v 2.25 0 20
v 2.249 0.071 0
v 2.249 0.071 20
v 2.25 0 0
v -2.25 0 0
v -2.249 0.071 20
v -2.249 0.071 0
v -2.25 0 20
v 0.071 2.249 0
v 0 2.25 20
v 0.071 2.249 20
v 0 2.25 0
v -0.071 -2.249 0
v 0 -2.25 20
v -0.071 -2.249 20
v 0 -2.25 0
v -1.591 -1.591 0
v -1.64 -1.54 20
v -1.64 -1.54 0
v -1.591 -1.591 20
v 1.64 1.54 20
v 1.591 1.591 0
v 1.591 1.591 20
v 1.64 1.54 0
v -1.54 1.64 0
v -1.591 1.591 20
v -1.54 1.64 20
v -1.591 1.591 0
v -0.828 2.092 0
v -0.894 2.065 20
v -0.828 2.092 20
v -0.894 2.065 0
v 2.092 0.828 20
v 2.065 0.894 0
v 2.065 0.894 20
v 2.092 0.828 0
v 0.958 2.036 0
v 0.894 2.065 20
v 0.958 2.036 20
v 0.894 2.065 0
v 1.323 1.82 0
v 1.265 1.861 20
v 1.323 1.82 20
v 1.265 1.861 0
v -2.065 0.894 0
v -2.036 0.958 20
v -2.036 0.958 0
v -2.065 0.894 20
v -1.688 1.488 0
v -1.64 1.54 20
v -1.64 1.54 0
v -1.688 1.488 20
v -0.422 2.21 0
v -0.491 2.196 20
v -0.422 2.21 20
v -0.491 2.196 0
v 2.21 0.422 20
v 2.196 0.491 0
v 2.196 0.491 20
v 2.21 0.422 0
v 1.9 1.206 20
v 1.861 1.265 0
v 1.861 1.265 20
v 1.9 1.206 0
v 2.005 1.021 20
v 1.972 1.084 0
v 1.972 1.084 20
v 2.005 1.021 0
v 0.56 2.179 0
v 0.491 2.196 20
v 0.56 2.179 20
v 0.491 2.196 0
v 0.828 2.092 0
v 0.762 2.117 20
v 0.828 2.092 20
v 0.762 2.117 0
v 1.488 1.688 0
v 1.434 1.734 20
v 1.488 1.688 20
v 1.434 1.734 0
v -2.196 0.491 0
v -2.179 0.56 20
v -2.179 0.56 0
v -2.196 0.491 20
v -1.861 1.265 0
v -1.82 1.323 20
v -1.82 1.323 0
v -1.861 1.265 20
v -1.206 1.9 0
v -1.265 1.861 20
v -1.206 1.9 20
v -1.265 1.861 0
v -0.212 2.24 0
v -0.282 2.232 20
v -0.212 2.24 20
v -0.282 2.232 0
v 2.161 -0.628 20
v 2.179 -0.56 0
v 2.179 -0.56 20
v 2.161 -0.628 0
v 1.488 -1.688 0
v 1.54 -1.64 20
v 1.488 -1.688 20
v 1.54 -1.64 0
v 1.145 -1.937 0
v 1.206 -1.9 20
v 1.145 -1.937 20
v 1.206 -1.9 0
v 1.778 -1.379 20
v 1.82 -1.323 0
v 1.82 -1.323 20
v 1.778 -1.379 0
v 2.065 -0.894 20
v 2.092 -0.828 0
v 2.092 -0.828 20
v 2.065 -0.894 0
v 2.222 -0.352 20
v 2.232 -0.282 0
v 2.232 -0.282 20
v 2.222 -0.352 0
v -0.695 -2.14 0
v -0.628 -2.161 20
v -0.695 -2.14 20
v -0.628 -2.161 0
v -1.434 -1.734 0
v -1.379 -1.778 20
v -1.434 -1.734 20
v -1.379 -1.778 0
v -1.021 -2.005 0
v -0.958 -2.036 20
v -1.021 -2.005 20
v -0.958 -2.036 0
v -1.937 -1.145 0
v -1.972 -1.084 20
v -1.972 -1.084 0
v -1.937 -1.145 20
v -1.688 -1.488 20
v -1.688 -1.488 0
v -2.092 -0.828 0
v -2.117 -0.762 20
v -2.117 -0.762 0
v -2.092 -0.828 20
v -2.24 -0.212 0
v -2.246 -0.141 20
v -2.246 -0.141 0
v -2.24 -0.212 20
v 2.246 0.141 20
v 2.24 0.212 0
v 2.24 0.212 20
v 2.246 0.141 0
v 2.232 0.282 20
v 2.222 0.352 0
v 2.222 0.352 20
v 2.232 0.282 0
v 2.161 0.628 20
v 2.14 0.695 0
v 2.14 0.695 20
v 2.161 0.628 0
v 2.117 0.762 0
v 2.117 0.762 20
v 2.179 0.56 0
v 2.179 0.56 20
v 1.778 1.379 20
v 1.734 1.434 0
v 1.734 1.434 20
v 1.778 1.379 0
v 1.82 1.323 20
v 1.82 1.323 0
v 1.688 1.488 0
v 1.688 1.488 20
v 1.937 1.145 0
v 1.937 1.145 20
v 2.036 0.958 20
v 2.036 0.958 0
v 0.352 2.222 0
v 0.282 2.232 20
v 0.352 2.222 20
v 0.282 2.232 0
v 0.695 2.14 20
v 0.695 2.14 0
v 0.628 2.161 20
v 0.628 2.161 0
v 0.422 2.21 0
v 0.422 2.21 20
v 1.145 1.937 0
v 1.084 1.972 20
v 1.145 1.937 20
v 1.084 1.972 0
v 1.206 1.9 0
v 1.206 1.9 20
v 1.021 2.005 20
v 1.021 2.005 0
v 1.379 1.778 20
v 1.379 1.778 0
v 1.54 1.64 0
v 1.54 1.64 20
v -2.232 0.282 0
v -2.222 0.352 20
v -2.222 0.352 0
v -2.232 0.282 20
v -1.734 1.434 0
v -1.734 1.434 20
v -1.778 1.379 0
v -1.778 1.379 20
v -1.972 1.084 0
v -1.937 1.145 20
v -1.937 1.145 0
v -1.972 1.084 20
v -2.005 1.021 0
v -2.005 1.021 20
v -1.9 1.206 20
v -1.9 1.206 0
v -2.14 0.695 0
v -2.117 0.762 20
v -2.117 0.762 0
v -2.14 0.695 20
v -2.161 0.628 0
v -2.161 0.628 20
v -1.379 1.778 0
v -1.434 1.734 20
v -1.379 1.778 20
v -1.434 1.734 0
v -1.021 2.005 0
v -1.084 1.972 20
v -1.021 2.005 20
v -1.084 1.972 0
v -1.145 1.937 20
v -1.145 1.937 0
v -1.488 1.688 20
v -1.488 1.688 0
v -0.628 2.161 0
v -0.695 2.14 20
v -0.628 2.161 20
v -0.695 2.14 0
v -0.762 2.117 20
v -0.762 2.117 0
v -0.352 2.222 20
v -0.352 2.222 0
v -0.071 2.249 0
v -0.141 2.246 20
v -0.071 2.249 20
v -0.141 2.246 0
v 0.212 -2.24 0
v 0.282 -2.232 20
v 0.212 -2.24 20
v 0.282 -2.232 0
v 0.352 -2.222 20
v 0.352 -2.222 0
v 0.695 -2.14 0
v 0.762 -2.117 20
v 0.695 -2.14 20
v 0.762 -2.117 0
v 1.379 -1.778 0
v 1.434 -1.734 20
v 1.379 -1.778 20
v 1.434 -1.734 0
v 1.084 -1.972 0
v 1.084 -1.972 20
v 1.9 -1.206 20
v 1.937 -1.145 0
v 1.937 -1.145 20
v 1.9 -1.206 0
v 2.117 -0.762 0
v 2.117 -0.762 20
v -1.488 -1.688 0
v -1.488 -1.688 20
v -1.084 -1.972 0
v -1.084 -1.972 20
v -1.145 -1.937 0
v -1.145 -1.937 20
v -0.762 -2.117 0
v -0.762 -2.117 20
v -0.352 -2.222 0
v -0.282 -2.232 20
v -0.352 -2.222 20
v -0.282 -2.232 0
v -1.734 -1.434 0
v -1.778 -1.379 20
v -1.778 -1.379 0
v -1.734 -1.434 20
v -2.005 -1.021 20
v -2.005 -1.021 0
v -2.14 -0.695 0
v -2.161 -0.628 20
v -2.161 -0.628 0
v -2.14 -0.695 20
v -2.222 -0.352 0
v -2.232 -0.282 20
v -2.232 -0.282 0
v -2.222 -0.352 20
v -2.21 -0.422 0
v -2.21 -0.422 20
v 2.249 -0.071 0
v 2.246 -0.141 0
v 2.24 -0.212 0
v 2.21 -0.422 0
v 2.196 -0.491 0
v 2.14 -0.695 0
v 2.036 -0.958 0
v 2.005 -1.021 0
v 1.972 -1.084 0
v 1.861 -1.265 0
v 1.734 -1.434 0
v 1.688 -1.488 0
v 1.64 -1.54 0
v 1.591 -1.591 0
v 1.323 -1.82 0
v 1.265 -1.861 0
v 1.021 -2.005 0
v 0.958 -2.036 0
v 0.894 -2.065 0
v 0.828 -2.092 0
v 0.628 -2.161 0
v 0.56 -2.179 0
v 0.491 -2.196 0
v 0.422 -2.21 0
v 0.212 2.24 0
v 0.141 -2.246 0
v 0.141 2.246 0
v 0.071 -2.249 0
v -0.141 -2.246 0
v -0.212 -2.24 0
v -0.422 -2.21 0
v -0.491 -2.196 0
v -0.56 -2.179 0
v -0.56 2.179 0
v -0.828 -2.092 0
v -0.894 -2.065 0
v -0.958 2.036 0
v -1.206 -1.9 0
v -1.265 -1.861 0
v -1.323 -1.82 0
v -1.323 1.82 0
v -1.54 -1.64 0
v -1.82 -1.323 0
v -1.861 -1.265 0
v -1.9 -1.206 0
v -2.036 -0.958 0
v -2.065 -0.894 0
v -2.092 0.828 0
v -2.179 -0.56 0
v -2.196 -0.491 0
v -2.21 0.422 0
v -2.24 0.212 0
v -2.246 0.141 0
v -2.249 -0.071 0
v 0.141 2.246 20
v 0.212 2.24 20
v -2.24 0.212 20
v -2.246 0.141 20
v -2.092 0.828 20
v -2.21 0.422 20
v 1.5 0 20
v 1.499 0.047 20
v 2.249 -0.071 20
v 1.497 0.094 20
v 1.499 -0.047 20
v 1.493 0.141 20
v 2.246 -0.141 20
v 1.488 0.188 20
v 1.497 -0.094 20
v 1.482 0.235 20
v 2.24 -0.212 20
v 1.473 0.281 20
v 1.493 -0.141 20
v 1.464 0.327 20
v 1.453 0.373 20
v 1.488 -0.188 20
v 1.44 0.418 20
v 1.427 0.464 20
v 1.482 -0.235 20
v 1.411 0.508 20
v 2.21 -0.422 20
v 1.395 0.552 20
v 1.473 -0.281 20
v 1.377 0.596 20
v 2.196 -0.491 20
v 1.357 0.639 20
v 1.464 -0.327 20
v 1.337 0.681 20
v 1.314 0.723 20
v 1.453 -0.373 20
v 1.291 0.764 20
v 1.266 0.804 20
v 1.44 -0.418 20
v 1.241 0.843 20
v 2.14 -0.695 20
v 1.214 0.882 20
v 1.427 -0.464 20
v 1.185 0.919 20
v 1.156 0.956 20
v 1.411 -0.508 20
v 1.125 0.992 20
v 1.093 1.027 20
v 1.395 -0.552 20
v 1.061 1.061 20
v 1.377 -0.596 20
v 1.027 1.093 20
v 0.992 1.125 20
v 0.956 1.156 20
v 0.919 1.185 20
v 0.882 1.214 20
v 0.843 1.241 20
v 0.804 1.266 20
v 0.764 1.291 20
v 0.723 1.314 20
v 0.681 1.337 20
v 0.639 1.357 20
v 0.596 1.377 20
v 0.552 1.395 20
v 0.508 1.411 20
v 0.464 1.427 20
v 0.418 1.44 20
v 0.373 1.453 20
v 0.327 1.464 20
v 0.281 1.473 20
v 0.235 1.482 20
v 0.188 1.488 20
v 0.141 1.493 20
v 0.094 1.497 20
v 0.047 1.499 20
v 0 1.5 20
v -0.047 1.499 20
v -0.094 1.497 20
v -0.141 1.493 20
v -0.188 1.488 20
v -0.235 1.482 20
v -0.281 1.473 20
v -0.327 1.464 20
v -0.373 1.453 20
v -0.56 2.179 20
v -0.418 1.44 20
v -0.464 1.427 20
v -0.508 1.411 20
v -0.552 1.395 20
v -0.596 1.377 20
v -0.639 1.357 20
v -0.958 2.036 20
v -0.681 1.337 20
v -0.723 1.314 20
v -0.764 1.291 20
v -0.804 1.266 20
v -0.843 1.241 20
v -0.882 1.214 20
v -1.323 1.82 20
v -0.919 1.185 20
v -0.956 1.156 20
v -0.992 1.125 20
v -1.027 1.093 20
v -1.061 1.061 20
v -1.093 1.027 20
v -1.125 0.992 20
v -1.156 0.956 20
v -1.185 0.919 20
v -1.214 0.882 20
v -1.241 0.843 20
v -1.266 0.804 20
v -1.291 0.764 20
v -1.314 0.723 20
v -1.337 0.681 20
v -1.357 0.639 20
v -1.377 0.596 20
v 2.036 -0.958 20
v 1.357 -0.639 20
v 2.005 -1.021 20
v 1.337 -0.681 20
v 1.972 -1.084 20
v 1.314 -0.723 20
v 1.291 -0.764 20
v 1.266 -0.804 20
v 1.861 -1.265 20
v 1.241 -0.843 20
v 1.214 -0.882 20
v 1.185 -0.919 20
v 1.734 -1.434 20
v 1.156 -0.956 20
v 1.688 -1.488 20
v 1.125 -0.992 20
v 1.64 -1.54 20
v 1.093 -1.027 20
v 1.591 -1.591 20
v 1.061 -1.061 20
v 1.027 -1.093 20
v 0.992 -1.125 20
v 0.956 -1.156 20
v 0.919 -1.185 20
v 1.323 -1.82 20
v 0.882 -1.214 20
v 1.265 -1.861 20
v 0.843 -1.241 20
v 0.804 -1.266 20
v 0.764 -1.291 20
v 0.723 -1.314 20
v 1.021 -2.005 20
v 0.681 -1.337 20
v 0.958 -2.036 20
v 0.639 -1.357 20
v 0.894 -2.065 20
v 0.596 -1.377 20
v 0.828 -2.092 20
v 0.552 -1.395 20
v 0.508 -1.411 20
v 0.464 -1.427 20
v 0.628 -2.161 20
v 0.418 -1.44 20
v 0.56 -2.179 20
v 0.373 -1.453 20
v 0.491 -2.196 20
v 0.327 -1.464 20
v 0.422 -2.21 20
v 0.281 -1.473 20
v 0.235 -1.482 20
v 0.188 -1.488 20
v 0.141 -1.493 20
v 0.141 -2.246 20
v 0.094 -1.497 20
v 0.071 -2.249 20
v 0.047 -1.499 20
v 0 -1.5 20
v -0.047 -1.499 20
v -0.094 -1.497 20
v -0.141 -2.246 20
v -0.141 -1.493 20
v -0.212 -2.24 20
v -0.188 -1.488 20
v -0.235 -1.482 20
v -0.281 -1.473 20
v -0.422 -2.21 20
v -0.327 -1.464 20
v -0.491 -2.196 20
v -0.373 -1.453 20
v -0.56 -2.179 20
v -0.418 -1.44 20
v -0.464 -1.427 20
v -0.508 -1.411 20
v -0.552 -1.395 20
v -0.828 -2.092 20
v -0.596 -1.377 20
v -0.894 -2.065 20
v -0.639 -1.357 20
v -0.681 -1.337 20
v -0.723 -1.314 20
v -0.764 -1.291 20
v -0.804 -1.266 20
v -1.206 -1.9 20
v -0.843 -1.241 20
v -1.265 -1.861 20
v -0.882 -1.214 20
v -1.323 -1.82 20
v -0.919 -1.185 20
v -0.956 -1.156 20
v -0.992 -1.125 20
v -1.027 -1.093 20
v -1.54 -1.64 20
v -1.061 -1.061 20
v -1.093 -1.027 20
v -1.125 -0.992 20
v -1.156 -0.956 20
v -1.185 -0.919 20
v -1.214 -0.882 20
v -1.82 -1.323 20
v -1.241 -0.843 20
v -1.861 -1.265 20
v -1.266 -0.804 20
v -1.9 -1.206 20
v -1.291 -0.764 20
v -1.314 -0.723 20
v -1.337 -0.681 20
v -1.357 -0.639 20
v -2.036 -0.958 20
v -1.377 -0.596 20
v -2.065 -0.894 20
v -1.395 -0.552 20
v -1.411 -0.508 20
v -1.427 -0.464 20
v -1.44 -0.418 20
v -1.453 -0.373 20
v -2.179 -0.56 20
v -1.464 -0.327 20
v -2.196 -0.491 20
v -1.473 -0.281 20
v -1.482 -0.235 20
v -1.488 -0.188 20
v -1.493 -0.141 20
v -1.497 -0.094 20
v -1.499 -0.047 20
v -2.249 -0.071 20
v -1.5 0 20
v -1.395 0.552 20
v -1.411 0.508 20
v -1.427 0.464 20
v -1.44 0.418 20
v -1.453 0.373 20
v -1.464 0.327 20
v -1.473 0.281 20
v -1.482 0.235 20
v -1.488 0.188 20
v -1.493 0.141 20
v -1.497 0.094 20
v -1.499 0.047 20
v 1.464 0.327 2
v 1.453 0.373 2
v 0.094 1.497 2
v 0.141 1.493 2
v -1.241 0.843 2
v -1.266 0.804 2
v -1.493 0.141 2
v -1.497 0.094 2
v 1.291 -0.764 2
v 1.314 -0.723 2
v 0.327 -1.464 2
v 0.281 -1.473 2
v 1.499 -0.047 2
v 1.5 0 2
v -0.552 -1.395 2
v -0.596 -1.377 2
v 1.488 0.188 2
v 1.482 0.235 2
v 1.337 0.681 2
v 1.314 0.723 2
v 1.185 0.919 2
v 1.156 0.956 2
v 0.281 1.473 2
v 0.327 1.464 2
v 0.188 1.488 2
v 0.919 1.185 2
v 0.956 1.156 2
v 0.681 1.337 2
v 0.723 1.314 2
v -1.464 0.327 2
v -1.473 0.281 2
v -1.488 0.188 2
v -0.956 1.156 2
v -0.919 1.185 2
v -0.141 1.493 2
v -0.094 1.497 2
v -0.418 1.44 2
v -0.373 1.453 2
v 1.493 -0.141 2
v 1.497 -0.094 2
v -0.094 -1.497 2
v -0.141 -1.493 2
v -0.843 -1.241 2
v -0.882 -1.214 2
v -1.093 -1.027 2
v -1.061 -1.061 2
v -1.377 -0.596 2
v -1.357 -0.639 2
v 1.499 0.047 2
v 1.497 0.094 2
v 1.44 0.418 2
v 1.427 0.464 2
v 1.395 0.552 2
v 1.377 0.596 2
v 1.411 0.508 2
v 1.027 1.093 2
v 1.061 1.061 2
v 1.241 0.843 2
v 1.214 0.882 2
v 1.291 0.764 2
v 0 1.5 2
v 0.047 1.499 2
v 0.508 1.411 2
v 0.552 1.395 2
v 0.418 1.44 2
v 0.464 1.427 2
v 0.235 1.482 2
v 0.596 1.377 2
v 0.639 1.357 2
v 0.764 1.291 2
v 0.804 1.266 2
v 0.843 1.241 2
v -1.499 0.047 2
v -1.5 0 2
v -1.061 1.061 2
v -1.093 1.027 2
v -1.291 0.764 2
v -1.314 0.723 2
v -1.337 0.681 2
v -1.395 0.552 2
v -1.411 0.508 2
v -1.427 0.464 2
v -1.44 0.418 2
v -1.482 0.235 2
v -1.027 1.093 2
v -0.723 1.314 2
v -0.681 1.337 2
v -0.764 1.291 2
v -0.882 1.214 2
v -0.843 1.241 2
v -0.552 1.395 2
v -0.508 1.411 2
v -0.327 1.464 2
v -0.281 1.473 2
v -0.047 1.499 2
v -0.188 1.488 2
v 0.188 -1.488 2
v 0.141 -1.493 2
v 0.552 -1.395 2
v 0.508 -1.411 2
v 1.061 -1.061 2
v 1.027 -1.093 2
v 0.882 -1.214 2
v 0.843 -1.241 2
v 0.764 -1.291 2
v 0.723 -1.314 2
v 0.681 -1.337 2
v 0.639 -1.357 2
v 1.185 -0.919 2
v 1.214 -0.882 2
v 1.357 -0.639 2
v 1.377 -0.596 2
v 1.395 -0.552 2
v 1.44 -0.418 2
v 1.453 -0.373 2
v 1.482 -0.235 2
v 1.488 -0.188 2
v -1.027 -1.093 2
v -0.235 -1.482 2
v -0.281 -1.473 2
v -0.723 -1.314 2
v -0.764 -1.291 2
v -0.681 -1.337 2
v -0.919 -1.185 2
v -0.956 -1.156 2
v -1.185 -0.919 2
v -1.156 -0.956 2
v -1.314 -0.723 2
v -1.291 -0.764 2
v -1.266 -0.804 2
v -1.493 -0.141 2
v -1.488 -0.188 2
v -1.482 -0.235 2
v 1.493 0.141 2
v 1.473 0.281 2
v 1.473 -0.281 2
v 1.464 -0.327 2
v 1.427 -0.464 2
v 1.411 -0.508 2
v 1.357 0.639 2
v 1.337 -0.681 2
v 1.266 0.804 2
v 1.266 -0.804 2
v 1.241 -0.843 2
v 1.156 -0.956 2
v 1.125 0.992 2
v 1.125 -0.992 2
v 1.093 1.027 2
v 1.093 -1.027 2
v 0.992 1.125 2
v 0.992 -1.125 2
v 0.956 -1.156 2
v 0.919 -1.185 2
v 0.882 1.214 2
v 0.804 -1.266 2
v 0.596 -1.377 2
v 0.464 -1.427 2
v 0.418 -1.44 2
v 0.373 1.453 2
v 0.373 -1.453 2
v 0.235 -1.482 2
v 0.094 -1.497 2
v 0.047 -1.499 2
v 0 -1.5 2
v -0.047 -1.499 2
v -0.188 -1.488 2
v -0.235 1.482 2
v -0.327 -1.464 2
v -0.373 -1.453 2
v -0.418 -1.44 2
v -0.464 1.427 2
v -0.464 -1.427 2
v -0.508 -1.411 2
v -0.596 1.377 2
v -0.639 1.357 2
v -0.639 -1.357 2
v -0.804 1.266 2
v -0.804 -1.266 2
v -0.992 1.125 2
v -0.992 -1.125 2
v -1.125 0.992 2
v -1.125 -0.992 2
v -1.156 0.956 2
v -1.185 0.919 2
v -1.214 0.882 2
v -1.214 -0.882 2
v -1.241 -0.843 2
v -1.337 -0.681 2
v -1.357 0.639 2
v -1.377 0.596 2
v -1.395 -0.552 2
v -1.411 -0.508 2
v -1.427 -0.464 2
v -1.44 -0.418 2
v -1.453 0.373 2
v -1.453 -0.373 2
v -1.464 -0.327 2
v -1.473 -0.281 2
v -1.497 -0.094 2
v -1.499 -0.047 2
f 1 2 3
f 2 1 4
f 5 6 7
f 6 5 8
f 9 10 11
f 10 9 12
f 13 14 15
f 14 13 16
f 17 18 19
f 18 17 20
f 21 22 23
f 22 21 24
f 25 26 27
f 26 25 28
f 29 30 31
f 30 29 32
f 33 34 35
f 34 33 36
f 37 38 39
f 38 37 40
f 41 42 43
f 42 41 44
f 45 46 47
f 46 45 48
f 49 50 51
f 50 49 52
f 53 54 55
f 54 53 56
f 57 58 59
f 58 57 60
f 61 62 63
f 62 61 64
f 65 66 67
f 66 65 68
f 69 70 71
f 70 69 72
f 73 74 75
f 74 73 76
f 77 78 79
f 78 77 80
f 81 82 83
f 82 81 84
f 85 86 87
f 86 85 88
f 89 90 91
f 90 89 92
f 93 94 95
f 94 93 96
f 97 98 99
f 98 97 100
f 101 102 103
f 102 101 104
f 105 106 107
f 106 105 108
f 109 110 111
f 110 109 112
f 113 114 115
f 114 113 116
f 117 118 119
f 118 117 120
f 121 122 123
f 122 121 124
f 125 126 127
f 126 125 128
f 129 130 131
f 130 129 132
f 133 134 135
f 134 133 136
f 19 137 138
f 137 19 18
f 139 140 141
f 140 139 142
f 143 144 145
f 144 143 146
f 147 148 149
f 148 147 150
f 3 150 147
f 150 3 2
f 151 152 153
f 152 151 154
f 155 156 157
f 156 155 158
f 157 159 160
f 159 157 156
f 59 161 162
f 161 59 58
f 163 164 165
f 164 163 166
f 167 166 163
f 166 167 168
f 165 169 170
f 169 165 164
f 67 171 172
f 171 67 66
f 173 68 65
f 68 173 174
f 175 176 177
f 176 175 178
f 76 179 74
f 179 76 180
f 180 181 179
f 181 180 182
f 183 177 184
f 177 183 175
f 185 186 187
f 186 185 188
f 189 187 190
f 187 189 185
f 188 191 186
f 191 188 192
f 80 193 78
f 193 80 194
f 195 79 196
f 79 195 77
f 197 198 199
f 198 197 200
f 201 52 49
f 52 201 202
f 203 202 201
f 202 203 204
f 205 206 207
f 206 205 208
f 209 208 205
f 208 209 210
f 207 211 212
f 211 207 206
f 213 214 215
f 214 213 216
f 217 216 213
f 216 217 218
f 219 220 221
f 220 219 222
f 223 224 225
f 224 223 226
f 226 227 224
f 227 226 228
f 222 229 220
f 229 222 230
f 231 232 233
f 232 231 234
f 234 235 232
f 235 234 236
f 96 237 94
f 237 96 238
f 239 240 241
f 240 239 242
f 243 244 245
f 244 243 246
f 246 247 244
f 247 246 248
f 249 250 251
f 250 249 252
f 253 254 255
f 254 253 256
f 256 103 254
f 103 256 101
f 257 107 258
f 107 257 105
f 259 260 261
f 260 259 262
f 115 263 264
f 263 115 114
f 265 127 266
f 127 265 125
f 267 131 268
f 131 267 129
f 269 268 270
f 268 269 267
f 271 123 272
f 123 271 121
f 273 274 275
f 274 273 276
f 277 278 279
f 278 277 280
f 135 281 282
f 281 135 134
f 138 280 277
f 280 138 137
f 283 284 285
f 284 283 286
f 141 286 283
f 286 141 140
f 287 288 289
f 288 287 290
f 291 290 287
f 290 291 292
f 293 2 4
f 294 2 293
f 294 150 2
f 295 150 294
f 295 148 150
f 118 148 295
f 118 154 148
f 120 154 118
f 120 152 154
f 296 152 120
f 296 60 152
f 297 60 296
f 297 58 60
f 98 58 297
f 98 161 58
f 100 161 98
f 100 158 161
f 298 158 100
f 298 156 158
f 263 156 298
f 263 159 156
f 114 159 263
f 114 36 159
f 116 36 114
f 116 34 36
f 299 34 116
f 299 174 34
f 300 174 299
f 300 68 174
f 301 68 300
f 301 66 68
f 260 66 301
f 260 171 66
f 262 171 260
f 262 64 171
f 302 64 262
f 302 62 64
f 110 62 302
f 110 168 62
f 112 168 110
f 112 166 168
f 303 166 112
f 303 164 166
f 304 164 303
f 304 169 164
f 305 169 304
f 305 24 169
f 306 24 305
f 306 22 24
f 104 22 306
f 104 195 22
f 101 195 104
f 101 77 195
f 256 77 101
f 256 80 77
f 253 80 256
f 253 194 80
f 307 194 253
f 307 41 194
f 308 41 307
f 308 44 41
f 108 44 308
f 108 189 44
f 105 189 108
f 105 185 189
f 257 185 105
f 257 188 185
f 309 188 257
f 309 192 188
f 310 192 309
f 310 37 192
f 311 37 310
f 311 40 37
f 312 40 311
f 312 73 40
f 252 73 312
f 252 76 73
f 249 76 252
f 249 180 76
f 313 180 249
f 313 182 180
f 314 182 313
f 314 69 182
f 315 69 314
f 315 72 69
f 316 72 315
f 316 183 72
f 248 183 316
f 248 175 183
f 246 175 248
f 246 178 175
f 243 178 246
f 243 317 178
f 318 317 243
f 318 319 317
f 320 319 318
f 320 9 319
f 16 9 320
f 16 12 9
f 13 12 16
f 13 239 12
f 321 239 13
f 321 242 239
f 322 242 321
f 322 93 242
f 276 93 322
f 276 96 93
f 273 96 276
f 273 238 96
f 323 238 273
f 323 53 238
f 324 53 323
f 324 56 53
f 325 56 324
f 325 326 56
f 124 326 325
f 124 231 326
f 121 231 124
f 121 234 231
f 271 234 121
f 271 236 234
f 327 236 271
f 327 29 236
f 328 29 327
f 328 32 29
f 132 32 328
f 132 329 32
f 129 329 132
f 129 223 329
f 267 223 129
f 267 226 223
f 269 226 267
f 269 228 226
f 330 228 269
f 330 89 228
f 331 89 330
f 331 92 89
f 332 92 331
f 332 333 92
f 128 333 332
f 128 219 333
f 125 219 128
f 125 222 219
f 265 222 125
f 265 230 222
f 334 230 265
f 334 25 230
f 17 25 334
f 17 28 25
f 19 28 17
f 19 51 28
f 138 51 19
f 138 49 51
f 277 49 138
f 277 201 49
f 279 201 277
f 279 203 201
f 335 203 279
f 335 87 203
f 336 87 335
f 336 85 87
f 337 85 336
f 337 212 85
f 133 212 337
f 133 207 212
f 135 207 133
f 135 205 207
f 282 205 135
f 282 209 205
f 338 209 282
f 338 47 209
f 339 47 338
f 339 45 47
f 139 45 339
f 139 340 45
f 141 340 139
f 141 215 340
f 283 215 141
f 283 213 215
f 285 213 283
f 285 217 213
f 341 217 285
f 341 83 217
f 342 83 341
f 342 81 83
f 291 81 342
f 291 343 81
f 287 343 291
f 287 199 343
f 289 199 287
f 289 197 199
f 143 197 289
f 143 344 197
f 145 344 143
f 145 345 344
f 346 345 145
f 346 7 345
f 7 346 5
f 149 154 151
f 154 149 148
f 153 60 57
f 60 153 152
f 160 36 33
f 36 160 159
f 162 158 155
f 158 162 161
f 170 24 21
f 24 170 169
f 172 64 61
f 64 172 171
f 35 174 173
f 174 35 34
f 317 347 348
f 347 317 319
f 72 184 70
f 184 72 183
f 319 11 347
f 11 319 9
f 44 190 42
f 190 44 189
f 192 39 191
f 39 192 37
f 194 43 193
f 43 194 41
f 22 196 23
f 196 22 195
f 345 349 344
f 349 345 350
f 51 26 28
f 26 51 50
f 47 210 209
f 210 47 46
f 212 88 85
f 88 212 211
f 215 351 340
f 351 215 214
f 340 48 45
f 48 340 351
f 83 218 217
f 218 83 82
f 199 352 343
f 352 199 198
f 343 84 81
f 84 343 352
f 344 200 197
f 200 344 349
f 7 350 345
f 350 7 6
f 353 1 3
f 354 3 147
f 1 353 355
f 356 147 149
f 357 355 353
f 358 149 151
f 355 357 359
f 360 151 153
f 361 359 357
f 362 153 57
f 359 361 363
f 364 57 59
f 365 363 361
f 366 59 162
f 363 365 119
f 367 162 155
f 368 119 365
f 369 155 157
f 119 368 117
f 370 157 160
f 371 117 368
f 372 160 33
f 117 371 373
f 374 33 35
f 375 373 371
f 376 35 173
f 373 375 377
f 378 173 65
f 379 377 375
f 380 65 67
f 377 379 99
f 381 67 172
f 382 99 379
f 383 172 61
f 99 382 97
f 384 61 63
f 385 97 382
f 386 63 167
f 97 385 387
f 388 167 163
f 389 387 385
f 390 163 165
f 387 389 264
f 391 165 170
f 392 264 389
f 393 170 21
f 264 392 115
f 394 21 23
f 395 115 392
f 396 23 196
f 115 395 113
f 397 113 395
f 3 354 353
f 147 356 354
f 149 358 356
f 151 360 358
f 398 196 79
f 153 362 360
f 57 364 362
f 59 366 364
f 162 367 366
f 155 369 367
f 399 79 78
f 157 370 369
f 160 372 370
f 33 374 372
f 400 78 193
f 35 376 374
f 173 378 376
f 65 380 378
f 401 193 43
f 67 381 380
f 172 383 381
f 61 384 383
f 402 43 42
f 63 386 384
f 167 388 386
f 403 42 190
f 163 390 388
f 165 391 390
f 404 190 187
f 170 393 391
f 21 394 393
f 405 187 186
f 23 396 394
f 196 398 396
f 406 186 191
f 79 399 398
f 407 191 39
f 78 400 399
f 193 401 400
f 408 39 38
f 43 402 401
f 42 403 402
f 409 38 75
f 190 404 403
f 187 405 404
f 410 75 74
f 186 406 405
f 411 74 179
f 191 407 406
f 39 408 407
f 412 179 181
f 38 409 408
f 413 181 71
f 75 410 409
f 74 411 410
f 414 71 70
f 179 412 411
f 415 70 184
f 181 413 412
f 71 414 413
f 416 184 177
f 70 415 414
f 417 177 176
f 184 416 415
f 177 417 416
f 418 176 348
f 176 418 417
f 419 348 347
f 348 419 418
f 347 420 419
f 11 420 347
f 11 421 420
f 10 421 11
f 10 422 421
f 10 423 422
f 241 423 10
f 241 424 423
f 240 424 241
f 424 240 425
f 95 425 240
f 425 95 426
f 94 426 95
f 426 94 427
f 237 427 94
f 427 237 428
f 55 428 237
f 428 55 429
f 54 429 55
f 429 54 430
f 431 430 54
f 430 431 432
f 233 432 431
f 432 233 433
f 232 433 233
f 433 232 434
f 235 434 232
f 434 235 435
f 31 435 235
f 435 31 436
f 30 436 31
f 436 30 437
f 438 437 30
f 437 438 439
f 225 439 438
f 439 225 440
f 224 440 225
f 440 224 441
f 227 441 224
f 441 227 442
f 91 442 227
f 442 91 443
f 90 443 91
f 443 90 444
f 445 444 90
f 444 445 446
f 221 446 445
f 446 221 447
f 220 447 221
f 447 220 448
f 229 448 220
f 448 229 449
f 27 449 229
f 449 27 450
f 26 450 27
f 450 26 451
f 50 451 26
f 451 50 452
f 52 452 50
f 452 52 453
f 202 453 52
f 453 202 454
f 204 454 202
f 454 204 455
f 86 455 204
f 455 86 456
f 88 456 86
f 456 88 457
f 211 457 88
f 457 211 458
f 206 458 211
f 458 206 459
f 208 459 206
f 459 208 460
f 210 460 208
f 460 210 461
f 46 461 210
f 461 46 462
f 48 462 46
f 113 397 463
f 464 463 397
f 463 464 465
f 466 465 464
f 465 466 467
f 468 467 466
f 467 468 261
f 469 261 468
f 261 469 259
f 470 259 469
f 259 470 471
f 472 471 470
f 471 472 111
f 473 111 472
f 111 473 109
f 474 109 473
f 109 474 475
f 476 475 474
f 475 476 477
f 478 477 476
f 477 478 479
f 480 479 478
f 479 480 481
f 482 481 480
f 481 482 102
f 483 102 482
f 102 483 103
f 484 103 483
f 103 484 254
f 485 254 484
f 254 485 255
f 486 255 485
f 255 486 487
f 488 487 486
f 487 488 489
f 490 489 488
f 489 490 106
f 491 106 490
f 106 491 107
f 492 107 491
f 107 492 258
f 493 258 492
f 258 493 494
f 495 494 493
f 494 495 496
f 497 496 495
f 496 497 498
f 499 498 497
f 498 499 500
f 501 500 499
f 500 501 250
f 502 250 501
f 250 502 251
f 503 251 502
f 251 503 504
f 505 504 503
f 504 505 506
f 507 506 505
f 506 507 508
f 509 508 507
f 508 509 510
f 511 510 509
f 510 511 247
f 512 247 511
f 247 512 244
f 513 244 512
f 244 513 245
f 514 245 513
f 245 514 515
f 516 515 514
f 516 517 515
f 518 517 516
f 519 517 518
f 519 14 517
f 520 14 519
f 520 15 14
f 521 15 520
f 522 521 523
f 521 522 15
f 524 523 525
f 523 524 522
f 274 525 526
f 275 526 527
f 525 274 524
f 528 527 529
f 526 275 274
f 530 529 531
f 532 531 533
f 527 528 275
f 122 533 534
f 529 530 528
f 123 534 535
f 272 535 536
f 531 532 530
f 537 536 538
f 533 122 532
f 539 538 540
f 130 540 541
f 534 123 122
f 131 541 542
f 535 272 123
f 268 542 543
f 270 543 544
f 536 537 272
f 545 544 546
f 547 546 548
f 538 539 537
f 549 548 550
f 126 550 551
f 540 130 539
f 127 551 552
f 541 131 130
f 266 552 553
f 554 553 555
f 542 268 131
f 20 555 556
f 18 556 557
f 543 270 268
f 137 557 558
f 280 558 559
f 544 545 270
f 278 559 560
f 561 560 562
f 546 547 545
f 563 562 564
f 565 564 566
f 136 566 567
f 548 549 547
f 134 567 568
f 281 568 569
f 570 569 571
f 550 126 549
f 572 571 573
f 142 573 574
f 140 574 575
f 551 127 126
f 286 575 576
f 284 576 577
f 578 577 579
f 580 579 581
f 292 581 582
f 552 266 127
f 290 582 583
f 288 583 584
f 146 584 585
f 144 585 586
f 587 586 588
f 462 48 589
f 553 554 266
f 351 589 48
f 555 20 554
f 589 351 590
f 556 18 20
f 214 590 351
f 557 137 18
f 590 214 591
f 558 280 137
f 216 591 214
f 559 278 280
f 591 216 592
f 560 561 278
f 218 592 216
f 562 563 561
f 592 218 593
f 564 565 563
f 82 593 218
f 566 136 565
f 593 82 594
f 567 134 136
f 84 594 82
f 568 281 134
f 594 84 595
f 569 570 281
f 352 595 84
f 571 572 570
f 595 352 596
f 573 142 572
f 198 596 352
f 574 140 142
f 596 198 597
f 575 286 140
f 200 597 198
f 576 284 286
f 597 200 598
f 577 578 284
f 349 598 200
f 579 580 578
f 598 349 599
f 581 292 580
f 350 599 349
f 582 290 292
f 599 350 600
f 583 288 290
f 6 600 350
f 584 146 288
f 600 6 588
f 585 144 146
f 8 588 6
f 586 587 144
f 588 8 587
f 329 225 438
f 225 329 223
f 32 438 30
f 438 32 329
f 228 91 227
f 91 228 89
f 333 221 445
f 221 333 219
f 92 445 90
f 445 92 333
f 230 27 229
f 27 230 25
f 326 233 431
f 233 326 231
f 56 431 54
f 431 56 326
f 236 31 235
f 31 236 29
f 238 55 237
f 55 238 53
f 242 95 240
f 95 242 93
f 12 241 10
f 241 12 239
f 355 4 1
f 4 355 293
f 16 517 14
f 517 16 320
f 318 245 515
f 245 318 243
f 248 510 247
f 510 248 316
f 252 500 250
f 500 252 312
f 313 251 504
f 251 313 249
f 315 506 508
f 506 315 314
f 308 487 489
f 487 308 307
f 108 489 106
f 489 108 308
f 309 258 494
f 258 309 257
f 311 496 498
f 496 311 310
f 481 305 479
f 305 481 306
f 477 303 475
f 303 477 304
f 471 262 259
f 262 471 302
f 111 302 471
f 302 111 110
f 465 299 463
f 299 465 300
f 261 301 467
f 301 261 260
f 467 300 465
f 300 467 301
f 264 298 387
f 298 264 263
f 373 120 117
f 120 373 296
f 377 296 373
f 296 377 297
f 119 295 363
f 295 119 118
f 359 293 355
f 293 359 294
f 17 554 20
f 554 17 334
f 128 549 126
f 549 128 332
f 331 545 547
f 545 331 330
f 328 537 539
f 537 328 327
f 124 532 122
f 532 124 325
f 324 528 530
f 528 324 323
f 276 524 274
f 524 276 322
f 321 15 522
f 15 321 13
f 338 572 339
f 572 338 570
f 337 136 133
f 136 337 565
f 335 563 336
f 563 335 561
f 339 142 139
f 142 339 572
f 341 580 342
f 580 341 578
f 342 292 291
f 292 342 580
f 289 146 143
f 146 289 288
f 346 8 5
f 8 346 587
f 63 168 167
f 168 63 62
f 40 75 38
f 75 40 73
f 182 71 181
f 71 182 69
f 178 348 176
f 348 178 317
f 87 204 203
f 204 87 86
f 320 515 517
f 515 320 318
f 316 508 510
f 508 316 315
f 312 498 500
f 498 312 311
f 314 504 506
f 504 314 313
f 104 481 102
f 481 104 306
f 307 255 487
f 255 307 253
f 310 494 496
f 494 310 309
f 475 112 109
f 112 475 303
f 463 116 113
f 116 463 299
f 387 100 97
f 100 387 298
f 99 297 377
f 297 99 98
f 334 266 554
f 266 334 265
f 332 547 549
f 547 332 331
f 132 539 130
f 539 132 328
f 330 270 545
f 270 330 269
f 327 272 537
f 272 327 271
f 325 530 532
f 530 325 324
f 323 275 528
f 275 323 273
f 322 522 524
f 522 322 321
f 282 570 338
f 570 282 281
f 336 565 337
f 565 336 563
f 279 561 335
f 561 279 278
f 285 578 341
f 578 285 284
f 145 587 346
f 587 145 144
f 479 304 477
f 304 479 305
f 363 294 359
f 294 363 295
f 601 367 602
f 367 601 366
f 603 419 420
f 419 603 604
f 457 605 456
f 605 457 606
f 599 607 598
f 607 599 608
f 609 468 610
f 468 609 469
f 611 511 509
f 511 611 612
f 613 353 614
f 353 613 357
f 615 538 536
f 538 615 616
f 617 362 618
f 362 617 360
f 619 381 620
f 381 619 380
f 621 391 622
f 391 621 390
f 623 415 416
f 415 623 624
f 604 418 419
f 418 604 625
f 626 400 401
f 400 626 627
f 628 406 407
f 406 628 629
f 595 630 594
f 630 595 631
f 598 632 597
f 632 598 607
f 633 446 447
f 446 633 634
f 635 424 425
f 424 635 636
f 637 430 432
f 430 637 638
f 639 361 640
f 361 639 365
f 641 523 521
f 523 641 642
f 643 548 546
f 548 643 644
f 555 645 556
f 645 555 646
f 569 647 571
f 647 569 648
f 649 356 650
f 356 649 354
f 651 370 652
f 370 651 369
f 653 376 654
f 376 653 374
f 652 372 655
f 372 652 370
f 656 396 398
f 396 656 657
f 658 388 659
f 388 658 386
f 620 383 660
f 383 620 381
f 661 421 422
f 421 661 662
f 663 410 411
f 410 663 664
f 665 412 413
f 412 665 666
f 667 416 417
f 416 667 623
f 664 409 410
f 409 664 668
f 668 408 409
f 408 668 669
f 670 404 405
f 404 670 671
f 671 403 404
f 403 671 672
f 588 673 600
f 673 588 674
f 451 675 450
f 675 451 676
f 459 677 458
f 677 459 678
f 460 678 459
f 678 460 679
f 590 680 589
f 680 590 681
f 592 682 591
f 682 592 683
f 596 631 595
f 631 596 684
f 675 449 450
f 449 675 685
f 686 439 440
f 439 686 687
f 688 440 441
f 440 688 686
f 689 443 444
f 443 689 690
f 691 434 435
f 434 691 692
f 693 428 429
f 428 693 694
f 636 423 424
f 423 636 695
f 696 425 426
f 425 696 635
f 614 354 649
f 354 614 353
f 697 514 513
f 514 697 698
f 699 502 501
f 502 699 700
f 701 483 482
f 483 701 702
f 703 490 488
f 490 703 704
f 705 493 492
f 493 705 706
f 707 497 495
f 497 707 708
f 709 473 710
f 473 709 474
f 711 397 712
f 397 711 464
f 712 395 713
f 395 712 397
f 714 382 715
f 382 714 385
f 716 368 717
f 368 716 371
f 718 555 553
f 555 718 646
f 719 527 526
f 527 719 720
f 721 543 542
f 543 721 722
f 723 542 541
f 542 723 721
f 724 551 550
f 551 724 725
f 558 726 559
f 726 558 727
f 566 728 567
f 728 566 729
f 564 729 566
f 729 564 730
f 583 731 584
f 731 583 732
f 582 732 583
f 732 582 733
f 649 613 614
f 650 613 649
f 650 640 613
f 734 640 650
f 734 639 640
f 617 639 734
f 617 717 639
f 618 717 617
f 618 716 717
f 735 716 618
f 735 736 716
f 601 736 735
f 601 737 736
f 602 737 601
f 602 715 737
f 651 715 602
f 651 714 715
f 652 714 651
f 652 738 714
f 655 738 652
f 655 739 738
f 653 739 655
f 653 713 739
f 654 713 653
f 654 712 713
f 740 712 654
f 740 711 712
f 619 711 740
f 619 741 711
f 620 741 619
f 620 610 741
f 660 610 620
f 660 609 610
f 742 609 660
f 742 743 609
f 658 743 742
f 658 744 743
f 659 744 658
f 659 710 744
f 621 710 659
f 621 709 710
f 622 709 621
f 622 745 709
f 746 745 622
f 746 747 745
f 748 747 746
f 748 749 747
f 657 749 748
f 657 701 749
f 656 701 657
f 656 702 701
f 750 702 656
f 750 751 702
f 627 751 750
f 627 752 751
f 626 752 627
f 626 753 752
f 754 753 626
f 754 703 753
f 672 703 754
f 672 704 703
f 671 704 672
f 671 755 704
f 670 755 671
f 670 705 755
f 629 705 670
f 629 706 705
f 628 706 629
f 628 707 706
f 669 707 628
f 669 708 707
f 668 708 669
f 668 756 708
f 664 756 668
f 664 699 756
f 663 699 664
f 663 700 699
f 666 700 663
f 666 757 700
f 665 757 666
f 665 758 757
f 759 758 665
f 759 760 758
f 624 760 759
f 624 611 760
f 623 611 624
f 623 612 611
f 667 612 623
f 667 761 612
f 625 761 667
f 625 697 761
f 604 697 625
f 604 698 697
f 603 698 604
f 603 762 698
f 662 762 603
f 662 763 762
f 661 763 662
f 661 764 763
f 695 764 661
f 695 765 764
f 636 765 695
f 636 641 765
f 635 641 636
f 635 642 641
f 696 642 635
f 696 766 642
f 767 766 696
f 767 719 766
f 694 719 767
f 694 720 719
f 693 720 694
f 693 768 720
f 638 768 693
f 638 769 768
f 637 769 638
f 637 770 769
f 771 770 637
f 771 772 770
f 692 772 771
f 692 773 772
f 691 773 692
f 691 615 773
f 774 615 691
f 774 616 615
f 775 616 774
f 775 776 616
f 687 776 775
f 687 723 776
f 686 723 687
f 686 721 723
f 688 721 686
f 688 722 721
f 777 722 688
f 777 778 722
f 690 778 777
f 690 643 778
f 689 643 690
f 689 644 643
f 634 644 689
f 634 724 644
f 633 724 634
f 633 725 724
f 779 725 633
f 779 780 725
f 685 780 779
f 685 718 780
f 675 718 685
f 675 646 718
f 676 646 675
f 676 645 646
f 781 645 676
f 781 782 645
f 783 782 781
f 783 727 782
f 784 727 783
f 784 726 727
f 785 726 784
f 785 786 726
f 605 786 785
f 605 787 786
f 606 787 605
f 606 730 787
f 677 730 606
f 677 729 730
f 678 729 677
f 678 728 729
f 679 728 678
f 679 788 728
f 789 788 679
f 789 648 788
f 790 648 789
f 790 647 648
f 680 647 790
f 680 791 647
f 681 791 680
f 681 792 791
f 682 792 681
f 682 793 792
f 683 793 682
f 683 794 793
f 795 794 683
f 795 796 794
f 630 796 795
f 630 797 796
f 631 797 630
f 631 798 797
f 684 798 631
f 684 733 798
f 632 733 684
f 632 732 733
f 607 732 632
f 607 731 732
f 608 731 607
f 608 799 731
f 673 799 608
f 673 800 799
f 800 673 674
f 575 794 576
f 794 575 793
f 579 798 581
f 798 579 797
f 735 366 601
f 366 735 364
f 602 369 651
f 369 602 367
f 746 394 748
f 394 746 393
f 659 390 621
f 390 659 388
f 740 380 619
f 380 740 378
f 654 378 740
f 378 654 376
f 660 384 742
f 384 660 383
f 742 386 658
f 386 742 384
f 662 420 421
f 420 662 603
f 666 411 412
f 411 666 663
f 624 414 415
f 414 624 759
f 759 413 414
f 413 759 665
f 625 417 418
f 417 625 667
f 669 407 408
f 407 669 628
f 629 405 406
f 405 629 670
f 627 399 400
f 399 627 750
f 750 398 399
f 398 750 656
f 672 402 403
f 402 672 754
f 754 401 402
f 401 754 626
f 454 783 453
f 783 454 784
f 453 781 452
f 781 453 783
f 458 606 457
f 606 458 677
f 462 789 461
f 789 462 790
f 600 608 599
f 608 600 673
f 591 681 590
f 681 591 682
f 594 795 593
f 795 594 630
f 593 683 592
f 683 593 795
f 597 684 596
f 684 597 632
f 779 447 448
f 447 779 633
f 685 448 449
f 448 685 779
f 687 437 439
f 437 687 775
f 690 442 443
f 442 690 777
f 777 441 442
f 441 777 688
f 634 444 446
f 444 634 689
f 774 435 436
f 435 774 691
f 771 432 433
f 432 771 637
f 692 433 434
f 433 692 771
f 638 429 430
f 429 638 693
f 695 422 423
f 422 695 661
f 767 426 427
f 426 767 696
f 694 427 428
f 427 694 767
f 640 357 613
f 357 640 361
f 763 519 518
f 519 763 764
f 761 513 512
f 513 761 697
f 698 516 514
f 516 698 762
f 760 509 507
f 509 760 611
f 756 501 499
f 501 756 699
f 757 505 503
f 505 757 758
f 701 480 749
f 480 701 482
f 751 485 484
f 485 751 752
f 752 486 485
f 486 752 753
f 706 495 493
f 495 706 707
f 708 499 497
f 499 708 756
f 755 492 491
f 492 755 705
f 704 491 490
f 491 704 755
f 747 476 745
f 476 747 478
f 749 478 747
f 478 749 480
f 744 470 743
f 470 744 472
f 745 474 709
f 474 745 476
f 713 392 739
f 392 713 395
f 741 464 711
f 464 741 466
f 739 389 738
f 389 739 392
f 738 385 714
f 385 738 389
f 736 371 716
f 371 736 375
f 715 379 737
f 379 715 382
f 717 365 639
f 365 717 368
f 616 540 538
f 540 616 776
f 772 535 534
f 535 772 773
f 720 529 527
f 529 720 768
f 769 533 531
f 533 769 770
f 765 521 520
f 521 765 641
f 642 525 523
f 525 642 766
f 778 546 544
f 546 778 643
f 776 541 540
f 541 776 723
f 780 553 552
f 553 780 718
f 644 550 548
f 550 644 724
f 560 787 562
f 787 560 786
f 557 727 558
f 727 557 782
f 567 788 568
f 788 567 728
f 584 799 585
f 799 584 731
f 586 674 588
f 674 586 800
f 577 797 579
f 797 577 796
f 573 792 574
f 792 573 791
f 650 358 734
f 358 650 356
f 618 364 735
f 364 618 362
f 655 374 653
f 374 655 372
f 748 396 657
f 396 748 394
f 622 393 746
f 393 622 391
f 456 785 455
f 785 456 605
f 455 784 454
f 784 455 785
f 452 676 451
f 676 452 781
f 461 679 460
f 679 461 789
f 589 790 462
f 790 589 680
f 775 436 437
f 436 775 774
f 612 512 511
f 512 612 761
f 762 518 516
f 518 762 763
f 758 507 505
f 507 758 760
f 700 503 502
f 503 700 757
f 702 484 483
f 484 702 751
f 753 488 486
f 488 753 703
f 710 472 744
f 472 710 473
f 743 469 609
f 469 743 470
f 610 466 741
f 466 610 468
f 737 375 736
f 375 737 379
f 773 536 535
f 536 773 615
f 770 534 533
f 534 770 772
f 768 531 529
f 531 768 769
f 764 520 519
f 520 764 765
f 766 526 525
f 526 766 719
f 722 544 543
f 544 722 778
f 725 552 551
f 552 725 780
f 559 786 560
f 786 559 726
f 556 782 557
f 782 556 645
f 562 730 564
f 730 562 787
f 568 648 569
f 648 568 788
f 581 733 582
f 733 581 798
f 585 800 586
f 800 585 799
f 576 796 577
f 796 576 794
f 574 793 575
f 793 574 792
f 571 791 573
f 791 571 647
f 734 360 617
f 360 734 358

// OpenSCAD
$fn = 200;//количество полигонов

height = 20;
ext_diameter = 4.5;
int_diameter = 3;


    difference()
    {
        cylinder(h = height, d = ext_diameter);
        translate([0,0,2])
            cylinder(h = height, d = int_diameter);
    }
    
        
